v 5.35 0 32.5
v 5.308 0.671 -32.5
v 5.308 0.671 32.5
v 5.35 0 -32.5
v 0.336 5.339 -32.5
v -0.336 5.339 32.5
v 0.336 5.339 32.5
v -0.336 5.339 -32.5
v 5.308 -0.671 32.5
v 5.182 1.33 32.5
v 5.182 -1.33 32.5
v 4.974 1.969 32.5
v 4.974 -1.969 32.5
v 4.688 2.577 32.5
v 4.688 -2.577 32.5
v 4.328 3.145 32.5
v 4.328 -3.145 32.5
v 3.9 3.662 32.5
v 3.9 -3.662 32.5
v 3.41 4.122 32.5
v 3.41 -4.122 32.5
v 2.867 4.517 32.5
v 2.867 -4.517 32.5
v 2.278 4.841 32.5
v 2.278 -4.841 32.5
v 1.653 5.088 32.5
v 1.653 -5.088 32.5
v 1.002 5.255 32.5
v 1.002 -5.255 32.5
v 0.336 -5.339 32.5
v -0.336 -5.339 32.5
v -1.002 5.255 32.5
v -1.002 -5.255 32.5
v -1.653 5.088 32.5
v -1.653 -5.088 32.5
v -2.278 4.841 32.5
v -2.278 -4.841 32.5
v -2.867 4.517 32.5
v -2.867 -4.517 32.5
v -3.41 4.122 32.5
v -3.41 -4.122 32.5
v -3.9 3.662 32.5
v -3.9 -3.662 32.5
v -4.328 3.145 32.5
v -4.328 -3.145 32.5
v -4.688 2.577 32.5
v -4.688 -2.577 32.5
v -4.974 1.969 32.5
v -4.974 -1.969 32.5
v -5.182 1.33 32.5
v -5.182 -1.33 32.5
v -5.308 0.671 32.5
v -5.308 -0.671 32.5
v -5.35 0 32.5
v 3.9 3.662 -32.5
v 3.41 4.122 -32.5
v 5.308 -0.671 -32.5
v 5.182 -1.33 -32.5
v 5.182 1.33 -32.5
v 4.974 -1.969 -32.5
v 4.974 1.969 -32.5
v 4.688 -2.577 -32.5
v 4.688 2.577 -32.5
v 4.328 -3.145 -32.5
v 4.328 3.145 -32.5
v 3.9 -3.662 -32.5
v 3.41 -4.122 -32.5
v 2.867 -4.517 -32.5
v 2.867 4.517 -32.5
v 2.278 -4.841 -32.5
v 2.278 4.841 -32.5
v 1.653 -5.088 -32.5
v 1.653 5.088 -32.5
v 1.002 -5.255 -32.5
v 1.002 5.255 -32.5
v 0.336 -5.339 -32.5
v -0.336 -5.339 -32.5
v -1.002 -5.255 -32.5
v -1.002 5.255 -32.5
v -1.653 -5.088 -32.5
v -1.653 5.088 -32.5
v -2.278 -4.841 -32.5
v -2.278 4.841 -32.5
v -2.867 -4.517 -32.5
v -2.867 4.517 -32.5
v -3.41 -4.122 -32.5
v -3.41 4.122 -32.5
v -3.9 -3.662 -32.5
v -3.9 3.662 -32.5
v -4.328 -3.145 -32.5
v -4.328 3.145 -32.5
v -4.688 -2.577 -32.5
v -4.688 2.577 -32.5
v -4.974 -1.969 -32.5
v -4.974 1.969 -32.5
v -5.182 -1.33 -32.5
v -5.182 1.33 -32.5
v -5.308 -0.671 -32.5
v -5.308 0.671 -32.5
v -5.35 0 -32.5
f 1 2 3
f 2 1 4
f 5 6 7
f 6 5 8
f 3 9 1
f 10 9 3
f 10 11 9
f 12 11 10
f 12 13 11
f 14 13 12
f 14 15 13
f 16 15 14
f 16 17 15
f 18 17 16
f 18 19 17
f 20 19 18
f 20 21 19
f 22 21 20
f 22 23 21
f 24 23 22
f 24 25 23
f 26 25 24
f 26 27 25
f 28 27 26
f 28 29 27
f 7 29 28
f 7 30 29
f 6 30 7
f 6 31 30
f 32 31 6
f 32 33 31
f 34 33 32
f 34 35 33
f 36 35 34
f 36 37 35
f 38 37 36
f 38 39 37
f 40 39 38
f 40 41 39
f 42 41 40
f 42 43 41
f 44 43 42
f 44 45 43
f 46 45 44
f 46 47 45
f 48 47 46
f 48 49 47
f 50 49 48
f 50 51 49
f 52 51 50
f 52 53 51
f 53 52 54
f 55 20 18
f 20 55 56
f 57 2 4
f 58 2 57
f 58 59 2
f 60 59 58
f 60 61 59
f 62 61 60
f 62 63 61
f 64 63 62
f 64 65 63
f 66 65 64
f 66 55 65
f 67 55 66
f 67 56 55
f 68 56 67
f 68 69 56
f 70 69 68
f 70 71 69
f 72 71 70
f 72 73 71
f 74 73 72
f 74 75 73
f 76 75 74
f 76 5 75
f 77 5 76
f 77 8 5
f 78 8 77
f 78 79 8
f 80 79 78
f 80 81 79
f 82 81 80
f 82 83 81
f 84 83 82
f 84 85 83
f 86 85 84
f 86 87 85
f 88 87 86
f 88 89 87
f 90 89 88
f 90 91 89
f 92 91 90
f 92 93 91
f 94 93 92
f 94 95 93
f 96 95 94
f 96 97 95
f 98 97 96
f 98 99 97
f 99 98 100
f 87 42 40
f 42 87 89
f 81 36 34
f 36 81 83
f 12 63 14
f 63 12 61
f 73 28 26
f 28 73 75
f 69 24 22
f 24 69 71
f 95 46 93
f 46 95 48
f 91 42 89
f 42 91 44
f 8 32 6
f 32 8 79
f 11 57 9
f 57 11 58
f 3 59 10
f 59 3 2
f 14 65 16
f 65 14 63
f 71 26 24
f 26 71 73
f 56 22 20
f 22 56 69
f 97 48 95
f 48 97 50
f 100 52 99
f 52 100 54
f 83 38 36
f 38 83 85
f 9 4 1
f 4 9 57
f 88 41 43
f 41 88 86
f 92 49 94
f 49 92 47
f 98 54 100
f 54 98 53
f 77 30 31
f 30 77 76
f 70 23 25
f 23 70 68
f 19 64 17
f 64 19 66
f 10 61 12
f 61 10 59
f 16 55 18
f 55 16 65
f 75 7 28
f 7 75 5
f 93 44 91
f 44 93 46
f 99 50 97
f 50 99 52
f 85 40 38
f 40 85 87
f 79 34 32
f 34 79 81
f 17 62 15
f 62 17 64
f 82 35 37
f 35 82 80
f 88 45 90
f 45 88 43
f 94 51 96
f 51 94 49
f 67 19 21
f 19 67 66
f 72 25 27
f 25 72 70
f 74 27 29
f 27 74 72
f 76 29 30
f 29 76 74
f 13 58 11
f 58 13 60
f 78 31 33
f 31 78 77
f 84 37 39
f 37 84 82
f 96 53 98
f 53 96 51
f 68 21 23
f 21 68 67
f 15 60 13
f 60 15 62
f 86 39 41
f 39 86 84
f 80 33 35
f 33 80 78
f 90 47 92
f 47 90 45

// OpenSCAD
$fn = 50;


difference() {
	union() {
		translate(v = [0, 0, -32.5000000000]) {
			cylinder(h = 65, r = 5.3500000000);
		}
	}
	union() {
		translate(v = [0, 0, -100.0000000000]) {
			cylinder(h = 200, r = 0);
		}
	}
}
